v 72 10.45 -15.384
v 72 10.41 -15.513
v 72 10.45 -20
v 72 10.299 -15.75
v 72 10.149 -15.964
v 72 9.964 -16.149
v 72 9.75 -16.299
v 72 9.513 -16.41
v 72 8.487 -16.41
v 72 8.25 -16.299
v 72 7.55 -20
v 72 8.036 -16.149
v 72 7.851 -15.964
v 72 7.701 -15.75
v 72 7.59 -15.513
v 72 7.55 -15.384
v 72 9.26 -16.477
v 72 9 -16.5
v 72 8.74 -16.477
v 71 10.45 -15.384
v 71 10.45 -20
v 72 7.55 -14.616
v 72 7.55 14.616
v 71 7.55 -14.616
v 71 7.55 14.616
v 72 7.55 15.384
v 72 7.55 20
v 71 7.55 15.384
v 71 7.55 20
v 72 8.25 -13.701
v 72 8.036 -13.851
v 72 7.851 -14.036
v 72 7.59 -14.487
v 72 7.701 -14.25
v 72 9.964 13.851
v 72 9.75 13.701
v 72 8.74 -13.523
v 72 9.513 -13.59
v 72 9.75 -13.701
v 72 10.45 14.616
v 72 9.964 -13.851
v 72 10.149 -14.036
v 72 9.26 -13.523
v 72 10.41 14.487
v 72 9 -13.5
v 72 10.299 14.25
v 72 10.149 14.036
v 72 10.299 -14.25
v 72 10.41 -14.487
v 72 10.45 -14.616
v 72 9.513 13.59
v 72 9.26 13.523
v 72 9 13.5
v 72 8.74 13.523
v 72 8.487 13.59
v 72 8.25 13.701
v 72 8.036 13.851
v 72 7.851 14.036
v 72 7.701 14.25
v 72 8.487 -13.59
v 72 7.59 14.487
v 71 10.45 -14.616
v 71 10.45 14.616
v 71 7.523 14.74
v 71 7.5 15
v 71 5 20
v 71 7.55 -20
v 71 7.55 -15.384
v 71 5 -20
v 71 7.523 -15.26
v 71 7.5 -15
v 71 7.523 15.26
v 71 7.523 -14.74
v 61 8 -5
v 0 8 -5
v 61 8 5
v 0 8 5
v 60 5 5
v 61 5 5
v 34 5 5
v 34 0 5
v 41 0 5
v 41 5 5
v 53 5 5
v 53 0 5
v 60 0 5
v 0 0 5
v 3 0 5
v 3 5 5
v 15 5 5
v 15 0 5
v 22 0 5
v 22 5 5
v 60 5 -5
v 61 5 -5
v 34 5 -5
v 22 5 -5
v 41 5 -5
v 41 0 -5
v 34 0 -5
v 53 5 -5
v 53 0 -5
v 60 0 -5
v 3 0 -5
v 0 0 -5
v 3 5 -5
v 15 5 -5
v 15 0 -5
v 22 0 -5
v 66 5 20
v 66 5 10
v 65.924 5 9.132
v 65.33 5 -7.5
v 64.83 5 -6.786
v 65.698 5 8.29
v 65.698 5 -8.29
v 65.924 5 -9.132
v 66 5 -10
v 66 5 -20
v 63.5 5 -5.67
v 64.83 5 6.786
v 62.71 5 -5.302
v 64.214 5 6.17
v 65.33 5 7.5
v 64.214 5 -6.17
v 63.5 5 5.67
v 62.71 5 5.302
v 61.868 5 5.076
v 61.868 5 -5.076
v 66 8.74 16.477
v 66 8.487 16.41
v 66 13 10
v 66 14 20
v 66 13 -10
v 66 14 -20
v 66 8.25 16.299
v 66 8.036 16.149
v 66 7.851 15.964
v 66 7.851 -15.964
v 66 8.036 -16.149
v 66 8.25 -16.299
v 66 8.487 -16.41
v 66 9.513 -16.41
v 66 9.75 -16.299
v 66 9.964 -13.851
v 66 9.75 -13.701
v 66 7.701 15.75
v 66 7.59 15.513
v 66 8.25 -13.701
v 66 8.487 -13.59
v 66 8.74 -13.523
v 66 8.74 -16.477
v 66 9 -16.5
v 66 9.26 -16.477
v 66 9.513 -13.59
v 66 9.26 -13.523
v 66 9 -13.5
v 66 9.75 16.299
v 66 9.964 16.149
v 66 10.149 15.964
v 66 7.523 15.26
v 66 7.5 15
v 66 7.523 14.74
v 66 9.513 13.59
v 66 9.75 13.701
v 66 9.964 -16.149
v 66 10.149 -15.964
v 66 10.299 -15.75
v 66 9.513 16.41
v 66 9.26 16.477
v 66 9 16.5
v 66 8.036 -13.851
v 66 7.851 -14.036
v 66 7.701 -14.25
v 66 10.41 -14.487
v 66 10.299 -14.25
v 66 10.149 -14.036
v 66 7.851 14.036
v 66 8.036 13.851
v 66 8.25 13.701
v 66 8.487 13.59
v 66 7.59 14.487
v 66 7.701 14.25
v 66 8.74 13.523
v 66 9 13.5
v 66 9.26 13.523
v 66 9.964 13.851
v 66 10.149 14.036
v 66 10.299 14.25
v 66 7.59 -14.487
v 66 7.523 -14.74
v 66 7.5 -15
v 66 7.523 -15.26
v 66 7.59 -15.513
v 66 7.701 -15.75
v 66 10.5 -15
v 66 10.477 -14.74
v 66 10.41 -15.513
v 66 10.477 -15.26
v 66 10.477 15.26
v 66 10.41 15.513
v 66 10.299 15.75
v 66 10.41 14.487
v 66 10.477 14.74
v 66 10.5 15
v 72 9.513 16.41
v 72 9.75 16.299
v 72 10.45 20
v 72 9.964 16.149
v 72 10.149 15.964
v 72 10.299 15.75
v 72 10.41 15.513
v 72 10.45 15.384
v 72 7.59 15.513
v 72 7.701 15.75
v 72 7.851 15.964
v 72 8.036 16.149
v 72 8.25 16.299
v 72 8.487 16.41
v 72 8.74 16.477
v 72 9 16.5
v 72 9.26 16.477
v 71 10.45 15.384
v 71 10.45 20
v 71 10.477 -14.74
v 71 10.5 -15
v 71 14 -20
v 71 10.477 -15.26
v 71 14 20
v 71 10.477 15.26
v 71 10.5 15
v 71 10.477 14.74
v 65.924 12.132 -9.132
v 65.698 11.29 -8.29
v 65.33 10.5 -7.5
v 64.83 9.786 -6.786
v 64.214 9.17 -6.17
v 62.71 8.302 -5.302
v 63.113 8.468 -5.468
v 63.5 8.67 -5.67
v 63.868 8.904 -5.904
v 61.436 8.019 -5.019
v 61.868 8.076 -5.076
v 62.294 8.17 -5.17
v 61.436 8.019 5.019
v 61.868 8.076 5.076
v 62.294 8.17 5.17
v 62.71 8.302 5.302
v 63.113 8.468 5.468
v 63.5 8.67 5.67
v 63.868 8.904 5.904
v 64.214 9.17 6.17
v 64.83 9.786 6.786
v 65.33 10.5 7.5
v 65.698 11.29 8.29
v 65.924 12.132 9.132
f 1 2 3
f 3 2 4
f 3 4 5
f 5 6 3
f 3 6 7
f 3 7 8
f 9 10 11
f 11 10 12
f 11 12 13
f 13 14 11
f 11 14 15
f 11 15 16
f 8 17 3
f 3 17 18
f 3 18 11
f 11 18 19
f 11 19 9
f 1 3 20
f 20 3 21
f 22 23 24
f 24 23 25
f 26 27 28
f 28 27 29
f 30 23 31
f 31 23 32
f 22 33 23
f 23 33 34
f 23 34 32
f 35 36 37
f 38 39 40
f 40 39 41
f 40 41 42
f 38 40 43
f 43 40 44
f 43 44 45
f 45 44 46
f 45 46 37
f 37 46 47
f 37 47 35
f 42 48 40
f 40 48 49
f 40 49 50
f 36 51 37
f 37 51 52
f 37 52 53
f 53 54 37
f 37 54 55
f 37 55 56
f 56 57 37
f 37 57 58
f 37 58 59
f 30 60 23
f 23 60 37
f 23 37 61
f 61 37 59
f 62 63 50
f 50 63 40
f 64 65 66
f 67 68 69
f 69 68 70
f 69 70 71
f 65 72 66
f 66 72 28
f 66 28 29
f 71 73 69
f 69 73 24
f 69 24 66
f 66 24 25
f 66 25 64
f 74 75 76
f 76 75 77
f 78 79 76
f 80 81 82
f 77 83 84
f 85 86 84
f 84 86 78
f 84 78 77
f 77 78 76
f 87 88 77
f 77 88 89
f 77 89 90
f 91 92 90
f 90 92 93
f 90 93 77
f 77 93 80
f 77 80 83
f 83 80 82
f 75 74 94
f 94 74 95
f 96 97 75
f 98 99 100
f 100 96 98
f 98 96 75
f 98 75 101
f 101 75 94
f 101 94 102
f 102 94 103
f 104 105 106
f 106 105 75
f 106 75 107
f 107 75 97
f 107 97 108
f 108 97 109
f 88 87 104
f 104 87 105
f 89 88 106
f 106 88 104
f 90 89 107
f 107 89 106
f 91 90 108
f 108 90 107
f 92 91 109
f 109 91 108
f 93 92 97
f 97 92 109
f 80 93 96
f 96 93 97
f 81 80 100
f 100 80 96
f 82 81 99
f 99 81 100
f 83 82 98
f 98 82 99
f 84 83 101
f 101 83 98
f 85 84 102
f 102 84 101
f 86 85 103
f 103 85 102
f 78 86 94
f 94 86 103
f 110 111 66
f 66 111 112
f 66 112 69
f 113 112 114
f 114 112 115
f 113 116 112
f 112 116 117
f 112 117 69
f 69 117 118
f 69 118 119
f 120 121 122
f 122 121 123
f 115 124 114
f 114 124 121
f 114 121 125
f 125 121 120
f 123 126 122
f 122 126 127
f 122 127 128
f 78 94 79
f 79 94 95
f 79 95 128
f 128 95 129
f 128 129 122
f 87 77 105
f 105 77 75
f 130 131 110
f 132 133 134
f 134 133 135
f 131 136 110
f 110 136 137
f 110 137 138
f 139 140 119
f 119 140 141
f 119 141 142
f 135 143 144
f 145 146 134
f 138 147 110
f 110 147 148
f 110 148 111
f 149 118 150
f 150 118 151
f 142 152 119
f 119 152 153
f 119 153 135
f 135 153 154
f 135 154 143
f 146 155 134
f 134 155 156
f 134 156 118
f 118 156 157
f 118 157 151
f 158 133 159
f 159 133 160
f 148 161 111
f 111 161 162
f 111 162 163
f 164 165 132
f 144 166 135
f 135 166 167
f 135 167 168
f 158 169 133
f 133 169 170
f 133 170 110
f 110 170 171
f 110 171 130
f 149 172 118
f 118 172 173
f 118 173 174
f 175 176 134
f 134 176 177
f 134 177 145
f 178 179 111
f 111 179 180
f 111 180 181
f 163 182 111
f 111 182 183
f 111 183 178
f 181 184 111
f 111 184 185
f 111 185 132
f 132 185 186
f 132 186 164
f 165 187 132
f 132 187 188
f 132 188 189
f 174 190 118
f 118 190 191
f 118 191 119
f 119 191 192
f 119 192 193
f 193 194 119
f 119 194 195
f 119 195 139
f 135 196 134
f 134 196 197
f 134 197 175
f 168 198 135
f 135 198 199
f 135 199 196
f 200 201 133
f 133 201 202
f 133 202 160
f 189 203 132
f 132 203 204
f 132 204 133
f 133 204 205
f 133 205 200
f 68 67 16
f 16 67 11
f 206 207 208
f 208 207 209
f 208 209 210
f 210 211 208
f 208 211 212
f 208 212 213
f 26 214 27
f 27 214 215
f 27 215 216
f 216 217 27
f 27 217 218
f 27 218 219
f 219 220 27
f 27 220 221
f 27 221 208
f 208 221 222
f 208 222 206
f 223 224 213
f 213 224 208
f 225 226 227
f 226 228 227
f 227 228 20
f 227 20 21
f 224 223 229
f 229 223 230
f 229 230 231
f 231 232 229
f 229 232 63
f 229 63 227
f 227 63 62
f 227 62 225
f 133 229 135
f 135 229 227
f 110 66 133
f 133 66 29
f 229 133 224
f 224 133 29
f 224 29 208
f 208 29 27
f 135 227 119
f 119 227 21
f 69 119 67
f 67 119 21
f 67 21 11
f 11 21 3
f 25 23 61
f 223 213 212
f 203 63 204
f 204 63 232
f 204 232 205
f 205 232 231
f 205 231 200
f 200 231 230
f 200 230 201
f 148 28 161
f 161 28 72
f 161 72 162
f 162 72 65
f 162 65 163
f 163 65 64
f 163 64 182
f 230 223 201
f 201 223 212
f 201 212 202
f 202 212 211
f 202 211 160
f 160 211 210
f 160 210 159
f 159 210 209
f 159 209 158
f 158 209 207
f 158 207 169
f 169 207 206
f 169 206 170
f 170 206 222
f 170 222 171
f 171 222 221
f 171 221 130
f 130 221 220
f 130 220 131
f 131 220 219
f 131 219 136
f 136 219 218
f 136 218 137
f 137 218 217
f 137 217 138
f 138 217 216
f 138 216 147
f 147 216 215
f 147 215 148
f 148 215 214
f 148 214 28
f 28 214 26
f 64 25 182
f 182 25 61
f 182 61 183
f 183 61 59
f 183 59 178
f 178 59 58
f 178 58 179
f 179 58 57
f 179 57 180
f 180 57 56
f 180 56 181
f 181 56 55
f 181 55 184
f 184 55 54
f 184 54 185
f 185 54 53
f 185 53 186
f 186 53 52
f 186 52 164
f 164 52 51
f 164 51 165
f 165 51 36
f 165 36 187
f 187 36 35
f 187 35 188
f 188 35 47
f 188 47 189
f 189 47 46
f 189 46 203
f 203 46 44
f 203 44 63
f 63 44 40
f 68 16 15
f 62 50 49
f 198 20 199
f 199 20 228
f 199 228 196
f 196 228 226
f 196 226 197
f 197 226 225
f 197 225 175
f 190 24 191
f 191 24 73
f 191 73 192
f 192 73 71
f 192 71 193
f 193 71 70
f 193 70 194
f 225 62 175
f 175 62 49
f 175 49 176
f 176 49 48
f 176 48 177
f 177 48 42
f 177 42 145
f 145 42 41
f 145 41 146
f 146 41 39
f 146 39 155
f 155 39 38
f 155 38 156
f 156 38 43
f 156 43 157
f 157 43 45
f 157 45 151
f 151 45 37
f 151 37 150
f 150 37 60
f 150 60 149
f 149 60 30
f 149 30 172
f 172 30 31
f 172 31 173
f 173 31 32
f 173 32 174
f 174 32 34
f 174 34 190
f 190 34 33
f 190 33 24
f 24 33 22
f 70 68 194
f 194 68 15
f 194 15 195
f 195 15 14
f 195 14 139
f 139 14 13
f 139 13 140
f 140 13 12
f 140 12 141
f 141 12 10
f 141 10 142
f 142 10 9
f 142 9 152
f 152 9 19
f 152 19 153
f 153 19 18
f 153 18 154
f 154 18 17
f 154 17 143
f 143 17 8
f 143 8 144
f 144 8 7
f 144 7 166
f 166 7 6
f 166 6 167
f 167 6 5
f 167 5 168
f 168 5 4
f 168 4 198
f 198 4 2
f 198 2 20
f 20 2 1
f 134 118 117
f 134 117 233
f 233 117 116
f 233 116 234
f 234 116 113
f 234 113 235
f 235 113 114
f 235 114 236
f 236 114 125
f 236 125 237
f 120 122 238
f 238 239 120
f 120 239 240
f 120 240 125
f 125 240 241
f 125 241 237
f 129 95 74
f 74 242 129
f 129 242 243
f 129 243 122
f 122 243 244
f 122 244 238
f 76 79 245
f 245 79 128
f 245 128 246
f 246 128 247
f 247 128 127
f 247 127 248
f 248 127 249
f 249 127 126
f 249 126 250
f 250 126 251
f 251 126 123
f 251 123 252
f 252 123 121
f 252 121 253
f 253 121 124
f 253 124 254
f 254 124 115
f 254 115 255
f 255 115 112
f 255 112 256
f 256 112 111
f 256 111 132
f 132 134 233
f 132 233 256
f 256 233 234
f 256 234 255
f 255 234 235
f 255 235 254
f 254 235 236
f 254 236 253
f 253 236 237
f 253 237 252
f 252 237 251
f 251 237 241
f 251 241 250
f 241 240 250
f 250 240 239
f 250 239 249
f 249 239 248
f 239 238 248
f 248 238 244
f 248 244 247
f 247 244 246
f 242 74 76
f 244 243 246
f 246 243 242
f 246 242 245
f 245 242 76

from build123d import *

# Parameters (mm, degrees)
MAIN_DEPTH             = 5
MAKERBEAMFIX_DEPTH     = 20
SKETCH2_R              = 1.5
MAKERBEAMFIXHOLE_DEPTH = 30
FILLET1_R              = 5


with BuildPart() as part:
    # Esquisse1 → Main (new body, symmetric)
    with BuildSketch(Plane.XY):
        Polygon((3, 0), (3, 5), (15, 5), (15, 0), (22, 0), (22, 5), (34, 5), (34, 0), (41, 0), (41, 5), (53, 5), (53, 0), (60, 0), (60, 5), (71, 5), (71, 8), (0, 8), (0, 0), align=None)
    extrude(amount=MAIN_DEPTH, both=True)

    # Sketch1 → MakerBeamFix (add, symmetric)
    with BuildSketch(Plane.XY):
        Polygon((66, 14), (71, 14), (71, 10.45), (72, 10.45), (72, 7.55), (71, 7.55), (71, 5), (66, 5), align=None)
    extrude(amount=MAKERBEAMFIX_DEPTH, both=True)

    # Sketch2 → MakerBeamFixHole (cut)
    with BuildSketch(Plane(origin=(72, 0, 0), x_dir=(0, 0, -1), z_dir=(1, 0, 0))):
        with Locations((-15, 9)):
            Circle(SKETCH2_R)
        with Locations((15, 9)):
            Circle(SKETCH2_R)
    extrude(amount=-MAKERBEAMFIXHOLE_DEPTH, mode=Mode.SUBTRACT)

    # Fillet1
    fillet1_edges = [part.edges().sort_by_distance(p)[0] for p in [
        (66, 6.5, -5),
        (66, 6.5, 5),
        (66, 8, 0),
    ]]
    fillet(fillet1_edges, radius=FILLET1_R)


solid = part.part
